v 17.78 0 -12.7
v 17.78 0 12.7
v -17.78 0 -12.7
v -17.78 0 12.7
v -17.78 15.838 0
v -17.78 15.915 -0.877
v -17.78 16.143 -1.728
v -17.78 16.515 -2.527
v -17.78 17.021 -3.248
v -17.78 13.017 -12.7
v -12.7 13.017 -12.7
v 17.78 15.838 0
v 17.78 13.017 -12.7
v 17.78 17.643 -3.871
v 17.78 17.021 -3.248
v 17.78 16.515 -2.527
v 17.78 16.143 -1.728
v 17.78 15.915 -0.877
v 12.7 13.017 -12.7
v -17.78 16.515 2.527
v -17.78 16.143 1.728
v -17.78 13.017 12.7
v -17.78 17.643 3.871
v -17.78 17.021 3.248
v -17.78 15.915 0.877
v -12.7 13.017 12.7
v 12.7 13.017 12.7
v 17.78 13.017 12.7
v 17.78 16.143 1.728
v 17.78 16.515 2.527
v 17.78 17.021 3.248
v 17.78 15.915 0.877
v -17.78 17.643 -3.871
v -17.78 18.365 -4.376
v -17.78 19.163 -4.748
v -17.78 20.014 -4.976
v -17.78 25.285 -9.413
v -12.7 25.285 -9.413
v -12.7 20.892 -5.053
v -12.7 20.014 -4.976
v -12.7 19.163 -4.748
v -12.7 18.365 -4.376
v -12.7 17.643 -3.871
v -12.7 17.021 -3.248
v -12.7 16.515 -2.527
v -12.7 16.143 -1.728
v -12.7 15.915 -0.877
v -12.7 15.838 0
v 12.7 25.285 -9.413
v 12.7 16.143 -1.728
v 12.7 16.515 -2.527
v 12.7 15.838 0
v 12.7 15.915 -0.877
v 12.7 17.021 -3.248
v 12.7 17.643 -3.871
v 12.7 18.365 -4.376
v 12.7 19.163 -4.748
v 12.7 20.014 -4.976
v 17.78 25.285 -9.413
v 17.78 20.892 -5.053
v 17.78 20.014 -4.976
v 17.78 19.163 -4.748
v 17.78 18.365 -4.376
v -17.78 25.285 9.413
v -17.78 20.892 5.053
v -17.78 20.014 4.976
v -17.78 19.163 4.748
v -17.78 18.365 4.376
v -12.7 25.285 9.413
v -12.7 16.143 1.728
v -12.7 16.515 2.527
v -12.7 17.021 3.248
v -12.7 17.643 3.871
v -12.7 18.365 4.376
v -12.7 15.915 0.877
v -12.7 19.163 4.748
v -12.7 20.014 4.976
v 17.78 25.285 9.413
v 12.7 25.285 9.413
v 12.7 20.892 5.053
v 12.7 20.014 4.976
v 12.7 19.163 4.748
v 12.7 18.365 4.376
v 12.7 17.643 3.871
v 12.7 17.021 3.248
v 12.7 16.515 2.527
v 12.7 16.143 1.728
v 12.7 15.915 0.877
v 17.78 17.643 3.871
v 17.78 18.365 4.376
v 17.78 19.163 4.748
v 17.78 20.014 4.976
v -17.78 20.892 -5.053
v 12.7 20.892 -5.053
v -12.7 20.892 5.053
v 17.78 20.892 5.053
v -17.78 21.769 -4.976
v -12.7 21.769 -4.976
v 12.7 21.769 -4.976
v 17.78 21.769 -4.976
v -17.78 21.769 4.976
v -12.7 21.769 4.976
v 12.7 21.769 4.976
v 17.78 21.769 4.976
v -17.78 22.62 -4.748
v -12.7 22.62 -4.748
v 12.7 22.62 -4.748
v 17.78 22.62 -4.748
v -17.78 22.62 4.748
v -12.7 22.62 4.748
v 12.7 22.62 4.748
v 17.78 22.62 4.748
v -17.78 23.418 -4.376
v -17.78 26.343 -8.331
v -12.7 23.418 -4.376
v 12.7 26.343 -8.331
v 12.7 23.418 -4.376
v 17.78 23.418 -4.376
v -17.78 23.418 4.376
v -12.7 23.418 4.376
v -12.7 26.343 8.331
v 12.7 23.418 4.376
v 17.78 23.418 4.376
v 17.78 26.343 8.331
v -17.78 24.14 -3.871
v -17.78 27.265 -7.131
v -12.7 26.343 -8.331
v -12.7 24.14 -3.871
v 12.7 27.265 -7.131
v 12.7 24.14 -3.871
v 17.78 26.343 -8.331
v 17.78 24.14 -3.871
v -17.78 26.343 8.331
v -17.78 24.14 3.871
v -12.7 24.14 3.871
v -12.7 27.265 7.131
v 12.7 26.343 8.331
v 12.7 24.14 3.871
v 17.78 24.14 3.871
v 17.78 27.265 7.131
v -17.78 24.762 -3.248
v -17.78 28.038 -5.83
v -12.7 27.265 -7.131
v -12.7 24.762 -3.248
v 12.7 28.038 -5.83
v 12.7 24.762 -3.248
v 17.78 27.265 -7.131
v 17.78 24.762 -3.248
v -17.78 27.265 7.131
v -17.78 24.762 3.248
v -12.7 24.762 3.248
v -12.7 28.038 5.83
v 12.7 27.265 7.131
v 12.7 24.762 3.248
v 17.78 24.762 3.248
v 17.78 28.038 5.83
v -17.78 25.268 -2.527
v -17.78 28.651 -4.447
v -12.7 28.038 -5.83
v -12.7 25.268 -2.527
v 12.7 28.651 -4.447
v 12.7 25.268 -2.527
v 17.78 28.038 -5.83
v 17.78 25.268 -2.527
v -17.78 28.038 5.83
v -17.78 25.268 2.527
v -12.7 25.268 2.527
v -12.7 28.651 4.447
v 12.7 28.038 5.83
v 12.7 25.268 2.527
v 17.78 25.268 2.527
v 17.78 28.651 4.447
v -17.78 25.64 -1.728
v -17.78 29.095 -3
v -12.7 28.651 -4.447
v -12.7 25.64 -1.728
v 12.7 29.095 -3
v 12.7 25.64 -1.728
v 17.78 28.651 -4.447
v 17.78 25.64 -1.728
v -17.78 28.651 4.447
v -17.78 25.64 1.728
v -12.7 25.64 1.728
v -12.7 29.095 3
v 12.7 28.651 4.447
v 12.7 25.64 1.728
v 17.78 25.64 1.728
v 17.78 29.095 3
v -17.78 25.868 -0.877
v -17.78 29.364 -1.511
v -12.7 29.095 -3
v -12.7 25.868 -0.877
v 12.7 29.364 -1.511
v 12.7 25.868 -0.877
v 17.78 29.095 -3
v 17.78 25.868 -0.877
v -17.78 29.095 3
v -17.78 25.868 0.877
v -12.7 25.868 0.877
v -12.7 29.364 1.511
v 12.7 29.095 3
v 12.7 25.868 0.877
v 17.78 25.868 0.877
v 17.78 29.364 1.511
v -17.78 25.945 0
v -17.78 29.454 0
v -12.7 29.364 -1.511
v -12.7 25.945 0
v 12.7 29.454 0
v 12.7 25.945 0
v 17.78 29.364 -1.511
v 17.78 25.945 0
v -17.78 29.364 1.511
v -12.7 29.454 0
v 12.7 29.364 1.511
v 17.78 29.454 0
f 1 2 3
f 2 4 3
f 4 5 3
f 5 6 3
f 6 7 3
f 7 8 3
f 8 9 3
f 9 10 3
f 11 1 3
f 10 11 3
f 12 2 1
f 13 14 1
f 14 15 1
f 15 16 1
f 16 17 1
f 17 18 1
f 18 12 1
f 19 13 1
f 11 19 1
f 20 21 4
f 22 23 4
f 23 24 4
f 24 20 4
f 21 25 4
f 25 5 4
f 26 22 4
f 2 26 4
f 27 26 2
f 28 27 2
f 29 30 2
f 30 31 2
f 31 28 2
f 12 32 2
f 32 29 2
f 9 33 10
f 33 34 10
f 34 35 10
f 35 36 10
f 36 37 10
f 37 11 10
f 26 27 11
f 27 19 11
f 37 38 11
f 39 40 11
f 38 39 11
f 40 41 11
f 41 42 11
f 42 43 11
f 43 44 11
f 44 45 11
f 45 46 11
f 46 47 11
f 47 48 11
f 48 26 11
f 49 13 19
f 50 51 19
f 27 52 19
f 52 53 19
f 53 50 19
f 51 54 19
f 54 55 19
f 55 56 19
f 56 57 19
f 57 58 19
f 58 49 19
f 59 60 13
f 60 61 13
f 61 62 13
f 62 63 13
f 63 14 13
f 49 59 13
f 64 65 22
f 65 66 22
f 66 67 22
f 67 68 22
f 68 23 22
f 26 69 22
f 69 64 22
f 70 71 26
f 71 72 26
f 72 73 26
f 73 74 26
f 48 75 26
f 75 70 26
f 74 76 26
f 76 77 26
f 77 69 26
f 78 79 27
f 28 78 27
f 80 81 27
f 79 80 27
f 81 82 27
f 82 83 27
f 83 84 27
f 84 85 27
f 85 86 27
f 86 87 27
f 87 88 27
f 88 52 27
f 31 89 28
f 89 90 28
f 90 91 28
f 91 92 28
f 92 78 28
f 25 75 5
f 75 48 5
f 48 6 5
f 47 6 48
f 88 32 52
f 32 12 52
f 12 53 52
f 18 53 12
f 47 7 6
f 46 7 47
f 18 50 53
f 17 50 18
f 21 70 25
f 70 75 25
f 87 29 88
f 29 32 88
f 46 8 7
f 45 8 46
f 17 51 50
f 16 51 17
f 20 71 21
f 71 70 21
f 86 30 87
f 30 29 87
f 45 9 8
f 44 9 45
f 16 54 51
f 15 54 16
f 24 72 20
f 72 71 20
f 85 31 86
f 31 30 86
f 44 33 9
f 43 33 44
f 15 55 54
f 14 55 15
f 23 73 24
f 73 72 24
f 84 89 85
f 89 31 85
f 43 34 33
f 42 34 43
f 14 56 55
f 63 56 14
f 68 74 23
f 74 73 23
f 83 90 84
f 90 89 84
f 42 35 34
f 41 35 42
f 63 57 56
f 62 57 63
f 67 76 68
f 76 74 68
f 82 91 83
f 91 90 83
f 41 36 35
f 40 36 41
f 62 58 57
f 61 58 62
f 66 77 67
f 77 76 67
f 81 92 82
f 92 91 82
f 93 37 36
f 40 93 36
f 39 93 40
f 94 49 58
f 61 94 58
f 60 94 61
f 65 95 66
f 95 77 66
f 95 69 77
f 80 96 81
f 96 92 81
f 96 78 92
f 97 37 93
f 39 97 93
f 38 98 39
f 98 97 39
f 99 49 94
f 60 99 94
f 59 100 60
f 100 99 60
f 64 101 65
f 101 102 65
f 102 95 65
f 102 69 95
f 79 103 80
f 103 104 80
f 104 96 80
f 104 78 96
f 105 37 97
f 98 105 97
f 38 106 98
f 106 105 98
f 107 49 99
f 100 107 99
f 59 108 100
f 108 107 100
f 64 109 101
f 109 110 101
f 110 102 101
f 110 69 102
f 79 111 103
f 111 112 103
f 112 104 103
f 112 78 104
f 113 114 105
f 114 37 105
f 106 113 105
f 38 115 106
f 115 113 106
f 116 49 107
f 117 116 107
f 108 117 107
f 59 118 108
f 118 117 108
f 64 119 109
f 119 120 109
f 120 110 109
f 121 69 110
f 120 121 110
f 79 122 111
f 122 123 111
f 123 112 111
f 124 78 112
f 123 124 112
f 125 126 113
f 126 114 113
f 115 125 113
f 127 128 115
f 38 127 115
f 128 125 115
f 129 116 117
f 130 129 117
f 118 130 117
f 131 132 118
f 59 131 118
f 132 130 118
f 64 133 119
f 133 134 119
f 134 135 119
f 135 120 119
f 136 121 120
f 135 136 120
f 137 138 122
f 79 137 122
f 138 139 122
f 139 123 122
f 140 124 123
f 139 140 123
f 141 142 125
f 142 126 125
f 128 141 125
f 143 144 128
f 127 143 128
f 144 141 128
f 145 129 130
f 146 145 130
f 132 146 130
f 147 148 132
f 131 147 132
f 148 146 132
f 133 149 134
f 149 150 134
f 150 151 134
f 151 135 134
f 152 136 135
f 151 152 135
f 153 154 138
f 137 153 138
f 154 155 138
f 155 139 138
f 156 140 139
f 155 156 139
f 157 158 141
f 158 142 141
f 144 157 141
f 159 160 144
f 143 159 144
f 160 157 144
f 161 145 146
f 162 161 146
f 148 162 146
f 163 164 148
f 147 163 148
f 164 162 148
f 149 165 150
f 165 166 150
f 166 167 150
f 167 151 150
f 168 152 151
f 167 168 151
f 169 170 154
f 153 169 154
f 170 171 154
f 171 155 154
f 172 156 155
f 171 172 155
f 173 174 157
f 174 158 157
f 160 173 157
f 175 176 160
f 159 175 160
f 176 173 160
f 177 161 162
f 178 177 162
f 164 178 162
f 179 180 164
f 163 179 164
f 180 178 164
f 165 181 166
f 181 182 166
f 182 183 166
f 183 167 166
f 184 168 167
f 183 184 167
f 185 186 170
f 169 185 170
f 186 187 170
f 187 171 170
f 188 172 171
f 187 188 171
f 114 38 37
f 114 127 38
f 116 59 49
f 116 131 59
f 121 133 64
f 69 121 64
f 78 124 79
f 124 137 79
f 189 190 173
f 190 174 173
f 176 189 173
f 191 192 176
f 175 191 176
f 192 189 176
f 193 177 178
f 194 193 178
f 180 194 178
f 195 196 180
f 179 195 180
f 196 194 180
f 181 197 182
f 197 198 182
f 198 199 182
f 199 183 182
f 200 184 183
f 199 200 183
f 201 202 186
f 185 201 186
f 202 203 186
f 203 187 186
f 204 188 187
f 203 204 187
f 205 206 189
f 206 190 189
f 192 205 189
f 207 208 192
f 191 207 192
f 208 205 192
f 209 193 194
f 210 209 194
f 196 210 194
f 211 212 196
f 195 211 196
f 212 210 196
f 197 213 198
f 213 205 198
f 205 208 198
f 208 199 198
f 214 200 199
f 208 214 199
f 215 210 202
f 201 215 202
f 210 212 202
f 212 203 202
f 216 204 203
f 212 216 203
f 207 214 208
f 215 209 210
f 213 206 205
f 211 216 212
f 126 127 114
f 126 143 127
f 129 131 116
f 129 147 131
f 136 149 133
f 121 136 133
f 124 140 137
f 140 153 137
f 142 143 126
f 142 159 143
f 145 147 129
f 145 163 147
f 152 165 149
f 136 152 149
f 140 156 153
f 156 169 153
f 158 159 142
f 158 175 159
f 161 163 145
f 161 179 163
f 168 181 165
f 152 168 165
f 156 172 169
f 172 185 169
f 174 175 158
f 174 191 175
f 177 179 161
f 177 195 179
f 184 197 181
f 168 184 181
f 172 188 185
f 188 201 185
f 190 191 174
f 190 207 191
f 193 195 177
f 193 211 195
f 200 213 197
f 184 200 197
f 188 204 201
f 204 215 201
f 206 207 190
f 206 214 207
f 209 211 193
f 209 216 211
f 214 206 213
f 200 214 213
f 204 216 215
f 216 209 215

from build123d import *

# Parameters (mm, degrees)
SKETCH1_W           = 35.56
SKETCH1_H           = 25.4
BOSS_EXTRUDE1_DEPTH = 13.0175
BOSS_EXTRUDE2_DEPTH = 5.08
SKETCH3_R           = 5.053169443
CUT_EXTRUDE1_DEPTH  = 36.56


with BuildPart() as part:
    # Sketch1 → Boss-Extrude1 (new body)
    with BuildSketch(Plane(origin=(0, 0, 0), x_dir=(1, 0, 0), z_dir=(0, 1, 0))):
        Rectangle(SKETCH1_W, SKETCH1_H)
    extrude(amount=BOSS_EXTRUDE1_DEPTH)

    # Sketch2 → Boss-Extrude2 (add)
    with BuildSketch(Plane(origin=(17.78, 0, 0), x_dir=(0, 0, -1), z_dir=(1, 0, 0))):
        with BuildLine():
            Line((-12.7, 13.0175), (-9.412998127, 25.284757994))
            ThreePointArc((-9.412998127, 25.284757994), (0, 29.45408338), (9.412998127, 25.284757994))
            Line((9.412998127, 25.284757994), (12.7, 13.0175))
            Line((12.7, 13.0175), (-12.7, 13.0175))
        make_face()
    boss_extrude2 = extrude(amount=-BOSS_EXTRUDE2_DEPTH)

    # Mirror1: Boss-Extrude2 across plane
    add(boss_extrude2.mirror(Plane(origin=(0, 0, 0), x_dir=(0, 0, 1), z_dir=(1, 0, 0))))

    # Sketch3 → Cut-Extrude1 (cut, through all)
    with BuildSketch(Plane(origin=(17.78, 0, 0), x_dir=(0, 0, -1), z_dir=(1, 0, 0))):
        with Locations((0, 20.8915)):
            Circle(SKETCH3_R)
    extrude(amount=-CUT_EXTRUDE1_DEPTH, mode=Mode.SUBTRACT)


solid = part.part
